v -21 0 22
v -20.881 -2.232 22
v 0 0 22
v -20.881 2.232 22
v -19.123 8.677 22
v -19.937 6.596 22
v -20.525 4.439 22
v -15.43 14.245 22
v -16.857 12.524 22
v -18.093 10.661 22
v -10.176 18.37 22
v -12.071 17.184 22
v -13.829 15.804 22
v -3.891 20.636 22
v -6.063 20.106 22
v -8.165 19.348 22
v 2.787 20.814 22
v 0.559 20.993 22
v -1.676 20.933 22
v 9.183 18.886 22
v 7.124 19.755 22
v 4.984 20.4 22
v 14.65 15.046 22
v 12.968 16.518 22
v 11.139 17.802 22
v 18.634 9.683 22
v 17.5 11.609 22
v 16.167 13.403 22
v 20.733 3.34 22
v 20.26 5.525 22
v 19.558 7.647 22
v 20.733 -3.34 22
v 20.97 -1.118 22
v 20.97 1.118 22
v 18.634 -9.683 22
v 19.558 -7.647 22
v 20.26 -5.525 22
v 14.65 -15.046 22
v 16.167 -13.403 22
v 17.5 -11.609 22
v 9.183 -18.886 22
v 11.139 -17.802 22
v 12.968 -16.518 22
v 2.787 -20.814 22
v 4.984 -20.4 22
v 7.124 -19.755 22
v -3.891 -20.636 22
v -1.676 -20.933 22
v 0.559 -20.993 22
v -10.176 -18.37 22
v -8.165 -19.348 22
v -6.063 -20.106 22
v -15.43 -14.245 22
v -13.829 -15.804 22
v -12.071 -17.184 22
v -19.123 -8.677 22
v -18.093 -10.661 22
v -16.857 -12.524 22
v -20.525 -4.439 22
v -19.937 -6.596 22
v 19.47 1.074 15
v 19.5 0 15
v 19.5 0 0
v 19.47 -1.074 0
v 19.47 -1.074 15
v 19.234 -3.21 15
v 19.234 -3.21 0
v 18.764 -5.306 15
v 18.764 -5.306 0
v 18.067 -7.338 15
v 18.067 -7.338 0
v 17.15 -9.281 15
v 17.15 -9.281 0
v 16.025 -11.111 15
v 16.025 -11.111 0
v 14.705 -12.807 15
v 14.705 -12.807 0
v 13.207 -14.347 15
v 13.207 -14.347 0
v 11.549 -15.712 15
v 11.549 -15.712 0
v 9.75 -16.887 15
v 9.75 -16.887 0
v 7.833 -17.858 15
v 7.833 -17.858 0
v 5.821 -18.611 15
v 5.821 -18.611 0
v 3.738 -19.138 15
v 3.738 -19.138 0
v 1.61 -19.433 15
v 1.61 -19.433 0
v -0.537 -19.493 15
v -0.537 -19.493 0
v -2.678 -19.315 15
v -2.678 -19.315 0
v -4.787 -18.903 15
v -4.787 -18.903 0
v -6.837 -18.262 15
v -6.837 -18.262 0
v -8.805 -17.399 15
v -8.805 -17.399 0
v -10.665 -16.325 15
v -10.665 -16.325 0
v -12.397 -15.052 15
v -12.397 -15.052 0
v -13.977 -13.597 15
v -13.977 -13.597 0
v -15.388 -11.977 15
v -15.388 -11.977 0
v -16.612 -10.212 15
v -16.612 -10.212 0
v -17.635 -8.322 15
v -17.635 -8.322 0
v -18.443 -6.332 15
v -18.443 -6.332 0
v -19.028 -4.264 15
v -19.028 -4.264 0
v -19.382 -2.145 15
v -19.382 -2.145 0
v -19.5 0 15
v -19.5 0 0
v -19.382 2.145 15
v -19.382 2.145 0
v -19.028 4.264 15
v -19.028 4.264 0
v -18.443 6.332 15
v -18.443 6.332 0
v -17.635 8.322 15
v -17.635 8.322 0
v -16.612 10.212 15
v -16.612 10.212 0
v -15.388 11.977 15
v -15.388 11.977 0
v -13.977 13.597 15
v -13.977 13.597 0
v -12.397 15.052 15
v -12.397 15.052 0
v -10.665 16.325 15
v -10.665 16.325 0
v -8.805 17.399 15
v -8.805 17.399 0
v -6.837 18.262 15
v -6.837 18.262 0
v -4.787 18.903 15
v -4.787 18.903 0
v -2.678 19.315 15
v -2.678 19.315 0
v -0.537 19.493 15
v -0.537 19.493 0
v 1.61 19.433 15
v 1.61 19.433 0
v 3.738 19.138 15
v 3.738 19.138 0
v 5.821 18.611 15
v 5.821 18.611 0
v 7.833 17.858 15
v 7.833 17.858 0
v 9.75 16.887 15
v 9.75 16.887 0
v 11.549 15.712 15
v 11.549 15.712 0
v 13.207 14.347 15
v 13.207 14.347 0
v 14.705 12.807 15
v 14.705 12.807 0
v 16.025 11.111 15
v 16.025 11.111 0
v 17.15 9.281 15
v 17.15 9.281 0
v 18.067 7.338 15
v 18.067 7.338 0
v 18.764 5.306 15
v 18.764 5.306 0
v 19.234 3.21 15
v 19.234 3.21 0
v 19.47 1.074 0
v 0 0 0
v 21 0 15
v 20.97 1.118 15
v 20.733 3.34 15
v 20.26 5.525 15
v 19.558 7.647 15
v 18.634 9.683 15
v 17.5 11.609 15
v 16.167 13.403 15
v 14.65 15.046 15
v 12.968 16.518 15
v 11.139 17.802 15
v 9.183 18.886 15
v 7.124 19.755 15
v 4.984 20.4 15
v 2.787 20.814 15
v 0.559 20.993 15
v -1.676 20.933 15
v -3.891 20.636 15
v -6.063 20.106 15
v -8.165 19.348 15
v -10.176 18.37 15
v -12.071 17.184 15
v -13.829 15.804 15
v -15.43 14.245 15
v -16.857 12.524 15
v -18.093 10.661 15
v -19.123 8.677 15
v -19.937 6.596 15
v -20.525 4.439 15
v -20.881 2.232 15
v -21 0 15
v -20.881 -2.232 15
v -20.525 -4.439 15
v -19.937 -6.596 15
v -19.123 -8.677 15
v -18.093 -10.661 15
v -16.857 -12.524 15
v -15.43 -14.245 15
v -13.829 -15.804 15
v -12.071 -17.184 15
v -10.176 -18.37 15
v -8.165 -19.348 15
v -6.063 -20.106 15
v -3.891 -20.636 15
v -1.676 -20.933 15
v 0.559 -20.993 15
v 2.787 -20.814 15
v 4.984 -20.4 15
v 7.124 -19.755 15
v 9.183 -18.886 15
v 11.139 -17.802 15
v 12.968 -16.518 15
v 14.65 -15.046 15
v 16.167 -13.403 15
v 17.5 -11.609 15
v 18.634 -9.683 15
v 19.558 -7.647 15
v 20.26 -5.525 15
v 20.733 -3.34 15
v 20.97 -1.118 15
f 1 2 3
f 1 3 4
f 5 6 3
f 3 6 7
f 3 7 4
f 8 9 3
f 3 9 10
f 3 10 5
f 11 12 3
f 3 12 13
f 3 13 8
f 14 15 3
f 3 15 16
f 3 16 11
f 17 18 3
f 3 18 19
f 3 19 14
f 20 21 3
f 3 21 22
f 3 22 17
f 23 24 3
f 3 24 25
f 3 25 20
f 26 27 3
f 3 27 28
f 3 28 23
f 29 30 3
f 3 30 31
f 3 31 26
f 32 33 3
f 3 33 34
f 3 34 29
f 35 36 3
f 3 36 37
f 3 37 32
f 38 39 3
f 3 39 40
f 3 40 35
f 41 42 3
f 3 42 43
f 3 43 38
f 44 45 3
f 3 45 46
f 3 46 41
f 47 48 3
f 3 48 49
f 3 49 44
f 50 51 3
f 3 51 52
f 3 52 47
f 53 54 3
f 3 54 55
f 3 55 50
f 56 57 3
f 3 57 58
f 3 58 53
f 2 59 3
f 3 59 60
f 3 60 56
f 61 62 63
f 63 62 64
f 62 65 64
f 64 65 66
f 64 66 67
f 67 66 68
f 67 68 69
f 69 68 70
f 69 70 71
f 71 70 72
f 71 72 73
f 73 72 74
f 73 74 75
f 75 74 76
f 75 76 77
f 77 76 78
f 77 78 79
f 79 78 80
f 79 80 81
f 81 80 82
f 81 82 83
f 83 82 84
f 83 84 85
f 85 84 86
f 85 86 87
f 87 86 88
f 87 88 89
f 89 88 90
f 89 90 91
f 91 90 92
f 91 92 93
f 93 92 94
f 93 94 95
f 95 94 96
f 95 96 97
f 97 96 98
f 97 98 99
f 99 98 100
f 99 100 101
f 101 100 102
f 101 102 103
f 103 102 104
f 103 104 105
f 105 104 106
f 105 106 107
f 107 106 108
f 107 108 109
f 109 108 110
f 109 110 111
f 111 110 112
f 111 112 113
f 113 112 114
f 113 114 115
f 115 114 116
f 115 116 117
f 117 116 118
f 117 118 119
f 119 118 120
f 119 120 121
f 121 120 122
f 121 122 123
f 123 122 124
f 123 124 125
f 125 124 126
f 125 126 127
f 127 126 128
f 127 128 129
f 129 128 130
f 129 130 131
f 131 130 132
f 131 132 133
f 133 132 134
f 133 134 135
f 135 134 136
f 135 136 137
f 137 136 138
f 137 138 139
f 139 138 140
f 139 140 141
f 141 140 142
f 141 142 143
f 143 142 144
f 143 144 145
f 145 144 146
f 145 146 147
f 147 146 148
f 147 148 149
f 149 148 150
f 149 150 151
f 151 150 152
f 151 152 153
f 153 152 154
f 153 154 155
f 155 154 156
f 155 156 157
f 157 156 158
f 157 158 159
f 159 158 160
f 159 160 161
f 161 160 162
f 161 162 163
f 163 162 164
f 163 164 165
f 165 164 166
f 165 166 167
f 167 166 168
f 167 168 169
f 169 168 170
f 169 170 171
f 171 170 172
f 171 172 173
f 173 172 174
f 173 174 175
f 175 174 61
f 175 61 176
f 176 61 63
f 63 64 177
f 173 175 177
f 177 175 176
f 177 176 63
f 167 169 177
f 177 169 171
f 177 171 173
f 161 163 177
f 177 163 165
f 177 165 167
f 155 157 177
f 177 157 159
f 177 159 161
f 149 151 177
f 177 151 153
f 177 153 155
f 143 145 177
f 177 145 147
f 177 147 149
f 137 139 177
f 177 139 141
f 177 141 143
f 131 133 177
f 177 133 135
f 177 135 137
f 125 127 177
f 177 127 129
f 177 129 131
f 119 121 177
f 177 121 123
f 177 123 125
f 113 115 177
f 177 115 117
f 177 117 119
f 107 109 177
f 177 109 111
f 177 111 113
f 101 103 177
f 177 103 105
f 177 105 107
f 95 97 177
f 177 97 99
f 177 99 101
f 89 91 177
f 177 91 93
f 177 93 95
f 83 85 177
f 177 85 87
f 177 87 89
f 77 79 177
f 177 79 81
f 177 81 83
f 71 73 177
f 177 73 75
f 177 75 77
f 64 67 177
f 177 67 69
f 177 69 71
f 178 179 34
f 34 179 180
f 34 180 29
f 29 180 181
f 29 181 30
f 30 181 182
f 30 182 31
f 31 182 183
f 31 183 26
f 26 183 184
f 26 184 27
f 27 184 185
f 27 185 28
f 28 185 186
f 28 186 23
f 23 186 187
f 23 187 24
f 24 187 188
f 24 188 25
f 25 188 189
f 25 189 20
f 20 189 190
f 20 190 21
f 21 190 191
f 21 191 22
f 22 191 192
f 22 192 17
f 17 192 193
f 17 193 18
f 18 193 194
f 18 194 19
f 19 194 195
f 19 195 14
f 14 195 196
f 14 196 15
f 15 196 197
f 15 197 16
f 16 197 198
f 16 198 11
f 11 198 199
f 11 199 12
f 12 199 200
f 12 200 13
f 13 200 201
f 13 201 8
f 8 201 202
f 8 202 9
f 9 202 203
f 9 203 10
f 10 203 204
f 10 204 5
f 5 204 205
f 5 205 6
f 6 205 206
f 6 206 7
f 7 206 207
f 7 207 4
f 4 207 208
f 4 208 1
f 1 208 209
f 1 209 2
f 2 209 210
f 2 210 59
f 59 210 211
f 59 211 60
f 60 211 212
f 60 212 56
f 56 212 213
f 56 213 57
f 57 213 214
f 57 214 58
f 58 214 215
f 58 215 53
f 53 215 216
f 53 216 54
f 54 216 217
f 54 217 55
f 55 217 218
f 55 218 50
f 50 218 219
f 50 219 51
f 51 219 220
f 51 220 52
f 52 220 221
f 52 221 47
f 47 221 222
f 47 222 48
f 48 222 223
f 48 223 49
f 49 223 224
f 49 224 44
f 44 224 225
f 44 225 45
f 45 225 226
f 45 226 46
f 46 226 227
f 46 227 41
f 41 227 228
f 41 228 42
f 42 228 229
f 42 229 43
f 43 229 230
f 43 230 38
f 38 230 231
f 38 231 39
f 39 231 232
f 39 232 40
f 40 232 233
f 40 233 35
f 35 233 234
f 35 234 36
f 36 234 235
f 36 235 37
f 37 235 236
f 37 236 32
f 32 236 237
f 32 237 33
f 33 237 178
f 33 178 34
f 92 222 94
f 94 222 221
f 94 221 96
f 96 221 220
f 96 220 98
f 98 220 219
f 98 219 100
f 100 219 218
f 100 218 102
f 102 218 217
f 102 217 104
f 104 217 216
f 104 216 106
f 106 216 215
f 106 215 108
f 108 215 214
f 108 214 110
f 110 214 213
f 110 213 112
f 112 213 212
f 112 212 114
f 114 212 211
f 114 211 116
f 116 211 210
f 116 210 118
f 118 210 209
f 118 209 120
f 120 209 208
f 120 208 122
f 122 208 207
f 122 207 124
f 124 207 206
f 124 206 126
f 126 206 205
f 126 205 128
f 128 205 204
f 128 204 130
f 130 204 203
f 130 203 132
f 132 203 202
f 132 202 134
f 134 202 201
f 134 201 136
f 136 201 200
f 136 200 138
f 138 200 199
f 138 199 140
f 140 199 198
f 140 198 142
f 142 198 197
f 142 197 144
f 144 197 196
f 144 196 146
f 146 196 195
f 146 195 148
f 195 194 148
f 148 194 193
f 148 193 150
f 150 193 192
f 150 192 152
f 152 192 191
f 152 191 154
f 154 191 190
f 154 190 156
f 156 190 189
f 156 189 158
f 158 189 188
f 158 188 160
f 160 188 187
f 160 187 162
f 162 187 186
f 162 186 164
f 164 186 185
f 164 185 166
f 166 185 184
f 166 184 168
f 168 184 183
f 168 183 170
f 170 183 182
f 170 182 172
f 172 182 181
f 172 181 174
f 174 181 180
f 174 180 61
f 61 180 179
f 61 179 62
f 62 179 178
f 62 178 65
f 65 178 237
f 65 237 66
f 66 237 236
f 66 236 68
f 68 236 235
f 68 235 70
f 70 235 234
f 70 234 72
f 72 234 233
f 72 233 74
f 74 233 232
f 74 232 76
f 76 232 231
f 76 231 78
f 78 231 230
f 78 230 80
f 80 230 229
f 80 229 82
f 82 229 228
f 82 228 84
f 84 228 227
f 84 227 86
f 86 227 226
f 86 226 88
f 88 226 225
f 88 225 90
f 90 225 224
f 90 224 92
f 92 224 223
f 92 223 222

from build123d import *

# Parameters (mm, degrees)
SKETCH1_R           = 19.5
BOSS_EXTRUDE1_DEPTH = 15
SKETCH2_R           = 21
BOSS_EXTRUDE2_DEPTH = 2
SKETCH3_R           = 50
BOSS_EXTRUDE3_DEPTH = 5
CUT_EXTRUDE2_DEPTH  = 5
CUT_EXTRUDE3_DEPTH  = 2.5
SKETCH8_R           = 2.5
CUT_EXTRUDE4_DEPTH  = 20.5
BOSS_EXTRUDE4_DEPTH = 5
FILLET1_R           = 1
SKETCH10_R          = 50
SKETCH10_R_2        = 21
CUT_EXTRUDE5_DEPTH  = 28


with BuildPart() as part:
    # Sketch1 → Boss-Extrude1 (new body)
    with BuildSketch(Plane.XY):
        Circle(SKETCH1_R)
    extrude(amount=BOSS_EXTRUDE1_DEPTH)

    # Sketch2 → Boss-Extrude2 (add)
    with BuildSketch(Plane.XY.offset(15)):
        Circle(SKETCH2_R)
    extrude(amount=BOSS_EXTRUDE2_DEPTH)

    # Sketch3 → Boss-Extrude3 (add)
    with BuildSketch(Plane.XY.offset(17)):
        Circle(SKETCH3_R)
    extrude(amount=BOSS_EXTRUDE3_DEPTH)

    # Sketch4 → Cut-Extrude2 (cut)
    with BuildSketch(Plane(origin=(0, 0, 17), x_dir=(-1, 0, 0), z_dir=(0, 0, -1))):
        with BuildLine():
            ThreePointArc((-18.186533, -10.5), (-21, 0), (-18.186533, 10.5))
            Line((-18.186533, 10.5), (-36.669606, 21.484645))
            ThreePointArc((-36.669606, 21.484645), (-42.499783, 0.135723), (-36.80608, -21.25))
            Line((-36.80608, -21.25), (-18.186533, -10.5))
        make_face()
        with BuildLine():
            Line((-21.25, 36.80608), (-10.5, 18.186533))
            ThreePointArc((-10.5, 18.186533), (0, 21), (10.5, 18.186533))
            Line((10.5, 18.186533), (21.484645, 36.669606))
            ThreePointArc((21.484645, 36.669606), (0.135723, 42.499783), (-21.25, 36.80608))
        make_face()
        with BuildLine():
            Line((36.80608, 21.25), (18.186533, 10.5))
            ThreePointArc((18.186533, 10.5), (20.284442, 5.4352), (21, 0))
            ThreePointArc((21, 0), (20.284442, -5.4352), (18.186533, -10.5))
            Line((18.186533, -10.5), (36.669606, -21.484645))
            ThreePointArc((36.669606, -21.484645), (42.499783, -0.135723), (36.80608, 21.25))
        make_face()
    extrude(amount=-CUT_EXTRUDE2_DEPTH, mode=Mode.SUBTRACT)

    # Sketch5 → Cut-Extrude3 (cut)
    with BuildSketch(Plane.XY.offset(22)):
        with BuildLine():
            Line((-15, -47.69696), (-15, -27.69696))
            Line((-15, -27.69696), (15, -27.69696))
            Line((15, -27.69696), (15, -47.69696))
            ThreePointArc((15, -47.69696), (0, -50), (-15, -47.69696))
        make_face()
    extrude(amount=-CUT_EXTRUDE3_DEPTH, mode=Mode.SUBTRACT)

    # Sketch8 → Cut-Extrude4 (cut, through all)
    with BuildSketch(Plane.XY.offset(19.5)):
        with Locations((-7.5, -37.69696)):
            Circle(SKETCH8_R)
        with Locations((7.5, -37.69696)):
            Circle(SKETCH8_R)
    extrude(amount=-CUT_EXTRUDE4_DEPTH, mode=Mode.SUBTRACT)

    # Sketch9 → Boss-Extrude4 (add)
    with BuildSketch(Plane.XY.offset(22)):
        with BuildLine():
            Line((-36.80608, 21.25), (-43.30127, 25))
            ThreePointArc((-43.30127, 25), (-49.999665, -0.183068), (-43.117043, -25.31641))
            Line((-43.117043, -25.31641), (-36.669606, -21.484645))
            ThreePointArc((-36.669606, -21.484645), (-42.499783, -0.135723), (-36.80608, 21.25))
        make_face()
        with BuildLine():
            Line((-21.484645, 36.669606), (-25.31641, 43.117043))
            ThreePointArc((-25.31641, 43.117043), (-0.183068, 49.999665), (25, 43.30127))
            Line((25, 43.30127), (21.25, 36.80608))
            ThreePointArc((21.25, 36.80608), (-0.135723, 42.499783), (-21.484645, 36.669606))
        make_face()
        with BuildLine():
            Line((36.669606, 21.484645), (43.117043, 25.31641))
            ThreePointArc((43.117043, 25.31641), (49.999665, 0.183068), (43.30127, -25))
            Line((43.30127, -25), (36.80608, -21.25))
            ThreePointArc((36.80608, -21.25), (42.499783, 0.135723), (36.669606, 21.484645))
        make_face()
    extrude(amount=BOSS_EXTRUDE4_DEPTH)

    # Fillet1
    fillet1_edges = [part.edges().sort_by_distance(p)[0] for p in [
        (-0.135723, 42.499783, 27),
        (23.125, 40.053675, 27),
        (-0.183068, 49.999665, 27),
        (-23.400528, 39.893324, 27),
        (42.499783, 0.135723, 27),
        (40.053675, -23.125, 27),
        (49.999665, 0.183068, 27),
        (39.893324, 23.400528, 27),
        (-42.499783, -0.135723, 27),
        (-40.053675, 23.125, 27),
        (-49.999665, -0.183068, 27),
        (-39.893324, -23.400528, 27),
    ]]
    fillet(fillet1_edges, radius=FILLET1_R)

    # Sketch10 → Cut-Extrude5 (cut, through all)
    with BuildSketch(Plane(origin=(0, 0, 0), x_dir=(-1, 0, 0), z_dir=(0, 0, -1))):
        Circle(SKETCH10_R)
        Circle(SKETCH10_R_2, mode=Mode.SUBTRACT)
    extrude(amount=-CUT_EXTRUDE5_DEPTH, mode=Mode.SUBTRACT)


solid = part.part
